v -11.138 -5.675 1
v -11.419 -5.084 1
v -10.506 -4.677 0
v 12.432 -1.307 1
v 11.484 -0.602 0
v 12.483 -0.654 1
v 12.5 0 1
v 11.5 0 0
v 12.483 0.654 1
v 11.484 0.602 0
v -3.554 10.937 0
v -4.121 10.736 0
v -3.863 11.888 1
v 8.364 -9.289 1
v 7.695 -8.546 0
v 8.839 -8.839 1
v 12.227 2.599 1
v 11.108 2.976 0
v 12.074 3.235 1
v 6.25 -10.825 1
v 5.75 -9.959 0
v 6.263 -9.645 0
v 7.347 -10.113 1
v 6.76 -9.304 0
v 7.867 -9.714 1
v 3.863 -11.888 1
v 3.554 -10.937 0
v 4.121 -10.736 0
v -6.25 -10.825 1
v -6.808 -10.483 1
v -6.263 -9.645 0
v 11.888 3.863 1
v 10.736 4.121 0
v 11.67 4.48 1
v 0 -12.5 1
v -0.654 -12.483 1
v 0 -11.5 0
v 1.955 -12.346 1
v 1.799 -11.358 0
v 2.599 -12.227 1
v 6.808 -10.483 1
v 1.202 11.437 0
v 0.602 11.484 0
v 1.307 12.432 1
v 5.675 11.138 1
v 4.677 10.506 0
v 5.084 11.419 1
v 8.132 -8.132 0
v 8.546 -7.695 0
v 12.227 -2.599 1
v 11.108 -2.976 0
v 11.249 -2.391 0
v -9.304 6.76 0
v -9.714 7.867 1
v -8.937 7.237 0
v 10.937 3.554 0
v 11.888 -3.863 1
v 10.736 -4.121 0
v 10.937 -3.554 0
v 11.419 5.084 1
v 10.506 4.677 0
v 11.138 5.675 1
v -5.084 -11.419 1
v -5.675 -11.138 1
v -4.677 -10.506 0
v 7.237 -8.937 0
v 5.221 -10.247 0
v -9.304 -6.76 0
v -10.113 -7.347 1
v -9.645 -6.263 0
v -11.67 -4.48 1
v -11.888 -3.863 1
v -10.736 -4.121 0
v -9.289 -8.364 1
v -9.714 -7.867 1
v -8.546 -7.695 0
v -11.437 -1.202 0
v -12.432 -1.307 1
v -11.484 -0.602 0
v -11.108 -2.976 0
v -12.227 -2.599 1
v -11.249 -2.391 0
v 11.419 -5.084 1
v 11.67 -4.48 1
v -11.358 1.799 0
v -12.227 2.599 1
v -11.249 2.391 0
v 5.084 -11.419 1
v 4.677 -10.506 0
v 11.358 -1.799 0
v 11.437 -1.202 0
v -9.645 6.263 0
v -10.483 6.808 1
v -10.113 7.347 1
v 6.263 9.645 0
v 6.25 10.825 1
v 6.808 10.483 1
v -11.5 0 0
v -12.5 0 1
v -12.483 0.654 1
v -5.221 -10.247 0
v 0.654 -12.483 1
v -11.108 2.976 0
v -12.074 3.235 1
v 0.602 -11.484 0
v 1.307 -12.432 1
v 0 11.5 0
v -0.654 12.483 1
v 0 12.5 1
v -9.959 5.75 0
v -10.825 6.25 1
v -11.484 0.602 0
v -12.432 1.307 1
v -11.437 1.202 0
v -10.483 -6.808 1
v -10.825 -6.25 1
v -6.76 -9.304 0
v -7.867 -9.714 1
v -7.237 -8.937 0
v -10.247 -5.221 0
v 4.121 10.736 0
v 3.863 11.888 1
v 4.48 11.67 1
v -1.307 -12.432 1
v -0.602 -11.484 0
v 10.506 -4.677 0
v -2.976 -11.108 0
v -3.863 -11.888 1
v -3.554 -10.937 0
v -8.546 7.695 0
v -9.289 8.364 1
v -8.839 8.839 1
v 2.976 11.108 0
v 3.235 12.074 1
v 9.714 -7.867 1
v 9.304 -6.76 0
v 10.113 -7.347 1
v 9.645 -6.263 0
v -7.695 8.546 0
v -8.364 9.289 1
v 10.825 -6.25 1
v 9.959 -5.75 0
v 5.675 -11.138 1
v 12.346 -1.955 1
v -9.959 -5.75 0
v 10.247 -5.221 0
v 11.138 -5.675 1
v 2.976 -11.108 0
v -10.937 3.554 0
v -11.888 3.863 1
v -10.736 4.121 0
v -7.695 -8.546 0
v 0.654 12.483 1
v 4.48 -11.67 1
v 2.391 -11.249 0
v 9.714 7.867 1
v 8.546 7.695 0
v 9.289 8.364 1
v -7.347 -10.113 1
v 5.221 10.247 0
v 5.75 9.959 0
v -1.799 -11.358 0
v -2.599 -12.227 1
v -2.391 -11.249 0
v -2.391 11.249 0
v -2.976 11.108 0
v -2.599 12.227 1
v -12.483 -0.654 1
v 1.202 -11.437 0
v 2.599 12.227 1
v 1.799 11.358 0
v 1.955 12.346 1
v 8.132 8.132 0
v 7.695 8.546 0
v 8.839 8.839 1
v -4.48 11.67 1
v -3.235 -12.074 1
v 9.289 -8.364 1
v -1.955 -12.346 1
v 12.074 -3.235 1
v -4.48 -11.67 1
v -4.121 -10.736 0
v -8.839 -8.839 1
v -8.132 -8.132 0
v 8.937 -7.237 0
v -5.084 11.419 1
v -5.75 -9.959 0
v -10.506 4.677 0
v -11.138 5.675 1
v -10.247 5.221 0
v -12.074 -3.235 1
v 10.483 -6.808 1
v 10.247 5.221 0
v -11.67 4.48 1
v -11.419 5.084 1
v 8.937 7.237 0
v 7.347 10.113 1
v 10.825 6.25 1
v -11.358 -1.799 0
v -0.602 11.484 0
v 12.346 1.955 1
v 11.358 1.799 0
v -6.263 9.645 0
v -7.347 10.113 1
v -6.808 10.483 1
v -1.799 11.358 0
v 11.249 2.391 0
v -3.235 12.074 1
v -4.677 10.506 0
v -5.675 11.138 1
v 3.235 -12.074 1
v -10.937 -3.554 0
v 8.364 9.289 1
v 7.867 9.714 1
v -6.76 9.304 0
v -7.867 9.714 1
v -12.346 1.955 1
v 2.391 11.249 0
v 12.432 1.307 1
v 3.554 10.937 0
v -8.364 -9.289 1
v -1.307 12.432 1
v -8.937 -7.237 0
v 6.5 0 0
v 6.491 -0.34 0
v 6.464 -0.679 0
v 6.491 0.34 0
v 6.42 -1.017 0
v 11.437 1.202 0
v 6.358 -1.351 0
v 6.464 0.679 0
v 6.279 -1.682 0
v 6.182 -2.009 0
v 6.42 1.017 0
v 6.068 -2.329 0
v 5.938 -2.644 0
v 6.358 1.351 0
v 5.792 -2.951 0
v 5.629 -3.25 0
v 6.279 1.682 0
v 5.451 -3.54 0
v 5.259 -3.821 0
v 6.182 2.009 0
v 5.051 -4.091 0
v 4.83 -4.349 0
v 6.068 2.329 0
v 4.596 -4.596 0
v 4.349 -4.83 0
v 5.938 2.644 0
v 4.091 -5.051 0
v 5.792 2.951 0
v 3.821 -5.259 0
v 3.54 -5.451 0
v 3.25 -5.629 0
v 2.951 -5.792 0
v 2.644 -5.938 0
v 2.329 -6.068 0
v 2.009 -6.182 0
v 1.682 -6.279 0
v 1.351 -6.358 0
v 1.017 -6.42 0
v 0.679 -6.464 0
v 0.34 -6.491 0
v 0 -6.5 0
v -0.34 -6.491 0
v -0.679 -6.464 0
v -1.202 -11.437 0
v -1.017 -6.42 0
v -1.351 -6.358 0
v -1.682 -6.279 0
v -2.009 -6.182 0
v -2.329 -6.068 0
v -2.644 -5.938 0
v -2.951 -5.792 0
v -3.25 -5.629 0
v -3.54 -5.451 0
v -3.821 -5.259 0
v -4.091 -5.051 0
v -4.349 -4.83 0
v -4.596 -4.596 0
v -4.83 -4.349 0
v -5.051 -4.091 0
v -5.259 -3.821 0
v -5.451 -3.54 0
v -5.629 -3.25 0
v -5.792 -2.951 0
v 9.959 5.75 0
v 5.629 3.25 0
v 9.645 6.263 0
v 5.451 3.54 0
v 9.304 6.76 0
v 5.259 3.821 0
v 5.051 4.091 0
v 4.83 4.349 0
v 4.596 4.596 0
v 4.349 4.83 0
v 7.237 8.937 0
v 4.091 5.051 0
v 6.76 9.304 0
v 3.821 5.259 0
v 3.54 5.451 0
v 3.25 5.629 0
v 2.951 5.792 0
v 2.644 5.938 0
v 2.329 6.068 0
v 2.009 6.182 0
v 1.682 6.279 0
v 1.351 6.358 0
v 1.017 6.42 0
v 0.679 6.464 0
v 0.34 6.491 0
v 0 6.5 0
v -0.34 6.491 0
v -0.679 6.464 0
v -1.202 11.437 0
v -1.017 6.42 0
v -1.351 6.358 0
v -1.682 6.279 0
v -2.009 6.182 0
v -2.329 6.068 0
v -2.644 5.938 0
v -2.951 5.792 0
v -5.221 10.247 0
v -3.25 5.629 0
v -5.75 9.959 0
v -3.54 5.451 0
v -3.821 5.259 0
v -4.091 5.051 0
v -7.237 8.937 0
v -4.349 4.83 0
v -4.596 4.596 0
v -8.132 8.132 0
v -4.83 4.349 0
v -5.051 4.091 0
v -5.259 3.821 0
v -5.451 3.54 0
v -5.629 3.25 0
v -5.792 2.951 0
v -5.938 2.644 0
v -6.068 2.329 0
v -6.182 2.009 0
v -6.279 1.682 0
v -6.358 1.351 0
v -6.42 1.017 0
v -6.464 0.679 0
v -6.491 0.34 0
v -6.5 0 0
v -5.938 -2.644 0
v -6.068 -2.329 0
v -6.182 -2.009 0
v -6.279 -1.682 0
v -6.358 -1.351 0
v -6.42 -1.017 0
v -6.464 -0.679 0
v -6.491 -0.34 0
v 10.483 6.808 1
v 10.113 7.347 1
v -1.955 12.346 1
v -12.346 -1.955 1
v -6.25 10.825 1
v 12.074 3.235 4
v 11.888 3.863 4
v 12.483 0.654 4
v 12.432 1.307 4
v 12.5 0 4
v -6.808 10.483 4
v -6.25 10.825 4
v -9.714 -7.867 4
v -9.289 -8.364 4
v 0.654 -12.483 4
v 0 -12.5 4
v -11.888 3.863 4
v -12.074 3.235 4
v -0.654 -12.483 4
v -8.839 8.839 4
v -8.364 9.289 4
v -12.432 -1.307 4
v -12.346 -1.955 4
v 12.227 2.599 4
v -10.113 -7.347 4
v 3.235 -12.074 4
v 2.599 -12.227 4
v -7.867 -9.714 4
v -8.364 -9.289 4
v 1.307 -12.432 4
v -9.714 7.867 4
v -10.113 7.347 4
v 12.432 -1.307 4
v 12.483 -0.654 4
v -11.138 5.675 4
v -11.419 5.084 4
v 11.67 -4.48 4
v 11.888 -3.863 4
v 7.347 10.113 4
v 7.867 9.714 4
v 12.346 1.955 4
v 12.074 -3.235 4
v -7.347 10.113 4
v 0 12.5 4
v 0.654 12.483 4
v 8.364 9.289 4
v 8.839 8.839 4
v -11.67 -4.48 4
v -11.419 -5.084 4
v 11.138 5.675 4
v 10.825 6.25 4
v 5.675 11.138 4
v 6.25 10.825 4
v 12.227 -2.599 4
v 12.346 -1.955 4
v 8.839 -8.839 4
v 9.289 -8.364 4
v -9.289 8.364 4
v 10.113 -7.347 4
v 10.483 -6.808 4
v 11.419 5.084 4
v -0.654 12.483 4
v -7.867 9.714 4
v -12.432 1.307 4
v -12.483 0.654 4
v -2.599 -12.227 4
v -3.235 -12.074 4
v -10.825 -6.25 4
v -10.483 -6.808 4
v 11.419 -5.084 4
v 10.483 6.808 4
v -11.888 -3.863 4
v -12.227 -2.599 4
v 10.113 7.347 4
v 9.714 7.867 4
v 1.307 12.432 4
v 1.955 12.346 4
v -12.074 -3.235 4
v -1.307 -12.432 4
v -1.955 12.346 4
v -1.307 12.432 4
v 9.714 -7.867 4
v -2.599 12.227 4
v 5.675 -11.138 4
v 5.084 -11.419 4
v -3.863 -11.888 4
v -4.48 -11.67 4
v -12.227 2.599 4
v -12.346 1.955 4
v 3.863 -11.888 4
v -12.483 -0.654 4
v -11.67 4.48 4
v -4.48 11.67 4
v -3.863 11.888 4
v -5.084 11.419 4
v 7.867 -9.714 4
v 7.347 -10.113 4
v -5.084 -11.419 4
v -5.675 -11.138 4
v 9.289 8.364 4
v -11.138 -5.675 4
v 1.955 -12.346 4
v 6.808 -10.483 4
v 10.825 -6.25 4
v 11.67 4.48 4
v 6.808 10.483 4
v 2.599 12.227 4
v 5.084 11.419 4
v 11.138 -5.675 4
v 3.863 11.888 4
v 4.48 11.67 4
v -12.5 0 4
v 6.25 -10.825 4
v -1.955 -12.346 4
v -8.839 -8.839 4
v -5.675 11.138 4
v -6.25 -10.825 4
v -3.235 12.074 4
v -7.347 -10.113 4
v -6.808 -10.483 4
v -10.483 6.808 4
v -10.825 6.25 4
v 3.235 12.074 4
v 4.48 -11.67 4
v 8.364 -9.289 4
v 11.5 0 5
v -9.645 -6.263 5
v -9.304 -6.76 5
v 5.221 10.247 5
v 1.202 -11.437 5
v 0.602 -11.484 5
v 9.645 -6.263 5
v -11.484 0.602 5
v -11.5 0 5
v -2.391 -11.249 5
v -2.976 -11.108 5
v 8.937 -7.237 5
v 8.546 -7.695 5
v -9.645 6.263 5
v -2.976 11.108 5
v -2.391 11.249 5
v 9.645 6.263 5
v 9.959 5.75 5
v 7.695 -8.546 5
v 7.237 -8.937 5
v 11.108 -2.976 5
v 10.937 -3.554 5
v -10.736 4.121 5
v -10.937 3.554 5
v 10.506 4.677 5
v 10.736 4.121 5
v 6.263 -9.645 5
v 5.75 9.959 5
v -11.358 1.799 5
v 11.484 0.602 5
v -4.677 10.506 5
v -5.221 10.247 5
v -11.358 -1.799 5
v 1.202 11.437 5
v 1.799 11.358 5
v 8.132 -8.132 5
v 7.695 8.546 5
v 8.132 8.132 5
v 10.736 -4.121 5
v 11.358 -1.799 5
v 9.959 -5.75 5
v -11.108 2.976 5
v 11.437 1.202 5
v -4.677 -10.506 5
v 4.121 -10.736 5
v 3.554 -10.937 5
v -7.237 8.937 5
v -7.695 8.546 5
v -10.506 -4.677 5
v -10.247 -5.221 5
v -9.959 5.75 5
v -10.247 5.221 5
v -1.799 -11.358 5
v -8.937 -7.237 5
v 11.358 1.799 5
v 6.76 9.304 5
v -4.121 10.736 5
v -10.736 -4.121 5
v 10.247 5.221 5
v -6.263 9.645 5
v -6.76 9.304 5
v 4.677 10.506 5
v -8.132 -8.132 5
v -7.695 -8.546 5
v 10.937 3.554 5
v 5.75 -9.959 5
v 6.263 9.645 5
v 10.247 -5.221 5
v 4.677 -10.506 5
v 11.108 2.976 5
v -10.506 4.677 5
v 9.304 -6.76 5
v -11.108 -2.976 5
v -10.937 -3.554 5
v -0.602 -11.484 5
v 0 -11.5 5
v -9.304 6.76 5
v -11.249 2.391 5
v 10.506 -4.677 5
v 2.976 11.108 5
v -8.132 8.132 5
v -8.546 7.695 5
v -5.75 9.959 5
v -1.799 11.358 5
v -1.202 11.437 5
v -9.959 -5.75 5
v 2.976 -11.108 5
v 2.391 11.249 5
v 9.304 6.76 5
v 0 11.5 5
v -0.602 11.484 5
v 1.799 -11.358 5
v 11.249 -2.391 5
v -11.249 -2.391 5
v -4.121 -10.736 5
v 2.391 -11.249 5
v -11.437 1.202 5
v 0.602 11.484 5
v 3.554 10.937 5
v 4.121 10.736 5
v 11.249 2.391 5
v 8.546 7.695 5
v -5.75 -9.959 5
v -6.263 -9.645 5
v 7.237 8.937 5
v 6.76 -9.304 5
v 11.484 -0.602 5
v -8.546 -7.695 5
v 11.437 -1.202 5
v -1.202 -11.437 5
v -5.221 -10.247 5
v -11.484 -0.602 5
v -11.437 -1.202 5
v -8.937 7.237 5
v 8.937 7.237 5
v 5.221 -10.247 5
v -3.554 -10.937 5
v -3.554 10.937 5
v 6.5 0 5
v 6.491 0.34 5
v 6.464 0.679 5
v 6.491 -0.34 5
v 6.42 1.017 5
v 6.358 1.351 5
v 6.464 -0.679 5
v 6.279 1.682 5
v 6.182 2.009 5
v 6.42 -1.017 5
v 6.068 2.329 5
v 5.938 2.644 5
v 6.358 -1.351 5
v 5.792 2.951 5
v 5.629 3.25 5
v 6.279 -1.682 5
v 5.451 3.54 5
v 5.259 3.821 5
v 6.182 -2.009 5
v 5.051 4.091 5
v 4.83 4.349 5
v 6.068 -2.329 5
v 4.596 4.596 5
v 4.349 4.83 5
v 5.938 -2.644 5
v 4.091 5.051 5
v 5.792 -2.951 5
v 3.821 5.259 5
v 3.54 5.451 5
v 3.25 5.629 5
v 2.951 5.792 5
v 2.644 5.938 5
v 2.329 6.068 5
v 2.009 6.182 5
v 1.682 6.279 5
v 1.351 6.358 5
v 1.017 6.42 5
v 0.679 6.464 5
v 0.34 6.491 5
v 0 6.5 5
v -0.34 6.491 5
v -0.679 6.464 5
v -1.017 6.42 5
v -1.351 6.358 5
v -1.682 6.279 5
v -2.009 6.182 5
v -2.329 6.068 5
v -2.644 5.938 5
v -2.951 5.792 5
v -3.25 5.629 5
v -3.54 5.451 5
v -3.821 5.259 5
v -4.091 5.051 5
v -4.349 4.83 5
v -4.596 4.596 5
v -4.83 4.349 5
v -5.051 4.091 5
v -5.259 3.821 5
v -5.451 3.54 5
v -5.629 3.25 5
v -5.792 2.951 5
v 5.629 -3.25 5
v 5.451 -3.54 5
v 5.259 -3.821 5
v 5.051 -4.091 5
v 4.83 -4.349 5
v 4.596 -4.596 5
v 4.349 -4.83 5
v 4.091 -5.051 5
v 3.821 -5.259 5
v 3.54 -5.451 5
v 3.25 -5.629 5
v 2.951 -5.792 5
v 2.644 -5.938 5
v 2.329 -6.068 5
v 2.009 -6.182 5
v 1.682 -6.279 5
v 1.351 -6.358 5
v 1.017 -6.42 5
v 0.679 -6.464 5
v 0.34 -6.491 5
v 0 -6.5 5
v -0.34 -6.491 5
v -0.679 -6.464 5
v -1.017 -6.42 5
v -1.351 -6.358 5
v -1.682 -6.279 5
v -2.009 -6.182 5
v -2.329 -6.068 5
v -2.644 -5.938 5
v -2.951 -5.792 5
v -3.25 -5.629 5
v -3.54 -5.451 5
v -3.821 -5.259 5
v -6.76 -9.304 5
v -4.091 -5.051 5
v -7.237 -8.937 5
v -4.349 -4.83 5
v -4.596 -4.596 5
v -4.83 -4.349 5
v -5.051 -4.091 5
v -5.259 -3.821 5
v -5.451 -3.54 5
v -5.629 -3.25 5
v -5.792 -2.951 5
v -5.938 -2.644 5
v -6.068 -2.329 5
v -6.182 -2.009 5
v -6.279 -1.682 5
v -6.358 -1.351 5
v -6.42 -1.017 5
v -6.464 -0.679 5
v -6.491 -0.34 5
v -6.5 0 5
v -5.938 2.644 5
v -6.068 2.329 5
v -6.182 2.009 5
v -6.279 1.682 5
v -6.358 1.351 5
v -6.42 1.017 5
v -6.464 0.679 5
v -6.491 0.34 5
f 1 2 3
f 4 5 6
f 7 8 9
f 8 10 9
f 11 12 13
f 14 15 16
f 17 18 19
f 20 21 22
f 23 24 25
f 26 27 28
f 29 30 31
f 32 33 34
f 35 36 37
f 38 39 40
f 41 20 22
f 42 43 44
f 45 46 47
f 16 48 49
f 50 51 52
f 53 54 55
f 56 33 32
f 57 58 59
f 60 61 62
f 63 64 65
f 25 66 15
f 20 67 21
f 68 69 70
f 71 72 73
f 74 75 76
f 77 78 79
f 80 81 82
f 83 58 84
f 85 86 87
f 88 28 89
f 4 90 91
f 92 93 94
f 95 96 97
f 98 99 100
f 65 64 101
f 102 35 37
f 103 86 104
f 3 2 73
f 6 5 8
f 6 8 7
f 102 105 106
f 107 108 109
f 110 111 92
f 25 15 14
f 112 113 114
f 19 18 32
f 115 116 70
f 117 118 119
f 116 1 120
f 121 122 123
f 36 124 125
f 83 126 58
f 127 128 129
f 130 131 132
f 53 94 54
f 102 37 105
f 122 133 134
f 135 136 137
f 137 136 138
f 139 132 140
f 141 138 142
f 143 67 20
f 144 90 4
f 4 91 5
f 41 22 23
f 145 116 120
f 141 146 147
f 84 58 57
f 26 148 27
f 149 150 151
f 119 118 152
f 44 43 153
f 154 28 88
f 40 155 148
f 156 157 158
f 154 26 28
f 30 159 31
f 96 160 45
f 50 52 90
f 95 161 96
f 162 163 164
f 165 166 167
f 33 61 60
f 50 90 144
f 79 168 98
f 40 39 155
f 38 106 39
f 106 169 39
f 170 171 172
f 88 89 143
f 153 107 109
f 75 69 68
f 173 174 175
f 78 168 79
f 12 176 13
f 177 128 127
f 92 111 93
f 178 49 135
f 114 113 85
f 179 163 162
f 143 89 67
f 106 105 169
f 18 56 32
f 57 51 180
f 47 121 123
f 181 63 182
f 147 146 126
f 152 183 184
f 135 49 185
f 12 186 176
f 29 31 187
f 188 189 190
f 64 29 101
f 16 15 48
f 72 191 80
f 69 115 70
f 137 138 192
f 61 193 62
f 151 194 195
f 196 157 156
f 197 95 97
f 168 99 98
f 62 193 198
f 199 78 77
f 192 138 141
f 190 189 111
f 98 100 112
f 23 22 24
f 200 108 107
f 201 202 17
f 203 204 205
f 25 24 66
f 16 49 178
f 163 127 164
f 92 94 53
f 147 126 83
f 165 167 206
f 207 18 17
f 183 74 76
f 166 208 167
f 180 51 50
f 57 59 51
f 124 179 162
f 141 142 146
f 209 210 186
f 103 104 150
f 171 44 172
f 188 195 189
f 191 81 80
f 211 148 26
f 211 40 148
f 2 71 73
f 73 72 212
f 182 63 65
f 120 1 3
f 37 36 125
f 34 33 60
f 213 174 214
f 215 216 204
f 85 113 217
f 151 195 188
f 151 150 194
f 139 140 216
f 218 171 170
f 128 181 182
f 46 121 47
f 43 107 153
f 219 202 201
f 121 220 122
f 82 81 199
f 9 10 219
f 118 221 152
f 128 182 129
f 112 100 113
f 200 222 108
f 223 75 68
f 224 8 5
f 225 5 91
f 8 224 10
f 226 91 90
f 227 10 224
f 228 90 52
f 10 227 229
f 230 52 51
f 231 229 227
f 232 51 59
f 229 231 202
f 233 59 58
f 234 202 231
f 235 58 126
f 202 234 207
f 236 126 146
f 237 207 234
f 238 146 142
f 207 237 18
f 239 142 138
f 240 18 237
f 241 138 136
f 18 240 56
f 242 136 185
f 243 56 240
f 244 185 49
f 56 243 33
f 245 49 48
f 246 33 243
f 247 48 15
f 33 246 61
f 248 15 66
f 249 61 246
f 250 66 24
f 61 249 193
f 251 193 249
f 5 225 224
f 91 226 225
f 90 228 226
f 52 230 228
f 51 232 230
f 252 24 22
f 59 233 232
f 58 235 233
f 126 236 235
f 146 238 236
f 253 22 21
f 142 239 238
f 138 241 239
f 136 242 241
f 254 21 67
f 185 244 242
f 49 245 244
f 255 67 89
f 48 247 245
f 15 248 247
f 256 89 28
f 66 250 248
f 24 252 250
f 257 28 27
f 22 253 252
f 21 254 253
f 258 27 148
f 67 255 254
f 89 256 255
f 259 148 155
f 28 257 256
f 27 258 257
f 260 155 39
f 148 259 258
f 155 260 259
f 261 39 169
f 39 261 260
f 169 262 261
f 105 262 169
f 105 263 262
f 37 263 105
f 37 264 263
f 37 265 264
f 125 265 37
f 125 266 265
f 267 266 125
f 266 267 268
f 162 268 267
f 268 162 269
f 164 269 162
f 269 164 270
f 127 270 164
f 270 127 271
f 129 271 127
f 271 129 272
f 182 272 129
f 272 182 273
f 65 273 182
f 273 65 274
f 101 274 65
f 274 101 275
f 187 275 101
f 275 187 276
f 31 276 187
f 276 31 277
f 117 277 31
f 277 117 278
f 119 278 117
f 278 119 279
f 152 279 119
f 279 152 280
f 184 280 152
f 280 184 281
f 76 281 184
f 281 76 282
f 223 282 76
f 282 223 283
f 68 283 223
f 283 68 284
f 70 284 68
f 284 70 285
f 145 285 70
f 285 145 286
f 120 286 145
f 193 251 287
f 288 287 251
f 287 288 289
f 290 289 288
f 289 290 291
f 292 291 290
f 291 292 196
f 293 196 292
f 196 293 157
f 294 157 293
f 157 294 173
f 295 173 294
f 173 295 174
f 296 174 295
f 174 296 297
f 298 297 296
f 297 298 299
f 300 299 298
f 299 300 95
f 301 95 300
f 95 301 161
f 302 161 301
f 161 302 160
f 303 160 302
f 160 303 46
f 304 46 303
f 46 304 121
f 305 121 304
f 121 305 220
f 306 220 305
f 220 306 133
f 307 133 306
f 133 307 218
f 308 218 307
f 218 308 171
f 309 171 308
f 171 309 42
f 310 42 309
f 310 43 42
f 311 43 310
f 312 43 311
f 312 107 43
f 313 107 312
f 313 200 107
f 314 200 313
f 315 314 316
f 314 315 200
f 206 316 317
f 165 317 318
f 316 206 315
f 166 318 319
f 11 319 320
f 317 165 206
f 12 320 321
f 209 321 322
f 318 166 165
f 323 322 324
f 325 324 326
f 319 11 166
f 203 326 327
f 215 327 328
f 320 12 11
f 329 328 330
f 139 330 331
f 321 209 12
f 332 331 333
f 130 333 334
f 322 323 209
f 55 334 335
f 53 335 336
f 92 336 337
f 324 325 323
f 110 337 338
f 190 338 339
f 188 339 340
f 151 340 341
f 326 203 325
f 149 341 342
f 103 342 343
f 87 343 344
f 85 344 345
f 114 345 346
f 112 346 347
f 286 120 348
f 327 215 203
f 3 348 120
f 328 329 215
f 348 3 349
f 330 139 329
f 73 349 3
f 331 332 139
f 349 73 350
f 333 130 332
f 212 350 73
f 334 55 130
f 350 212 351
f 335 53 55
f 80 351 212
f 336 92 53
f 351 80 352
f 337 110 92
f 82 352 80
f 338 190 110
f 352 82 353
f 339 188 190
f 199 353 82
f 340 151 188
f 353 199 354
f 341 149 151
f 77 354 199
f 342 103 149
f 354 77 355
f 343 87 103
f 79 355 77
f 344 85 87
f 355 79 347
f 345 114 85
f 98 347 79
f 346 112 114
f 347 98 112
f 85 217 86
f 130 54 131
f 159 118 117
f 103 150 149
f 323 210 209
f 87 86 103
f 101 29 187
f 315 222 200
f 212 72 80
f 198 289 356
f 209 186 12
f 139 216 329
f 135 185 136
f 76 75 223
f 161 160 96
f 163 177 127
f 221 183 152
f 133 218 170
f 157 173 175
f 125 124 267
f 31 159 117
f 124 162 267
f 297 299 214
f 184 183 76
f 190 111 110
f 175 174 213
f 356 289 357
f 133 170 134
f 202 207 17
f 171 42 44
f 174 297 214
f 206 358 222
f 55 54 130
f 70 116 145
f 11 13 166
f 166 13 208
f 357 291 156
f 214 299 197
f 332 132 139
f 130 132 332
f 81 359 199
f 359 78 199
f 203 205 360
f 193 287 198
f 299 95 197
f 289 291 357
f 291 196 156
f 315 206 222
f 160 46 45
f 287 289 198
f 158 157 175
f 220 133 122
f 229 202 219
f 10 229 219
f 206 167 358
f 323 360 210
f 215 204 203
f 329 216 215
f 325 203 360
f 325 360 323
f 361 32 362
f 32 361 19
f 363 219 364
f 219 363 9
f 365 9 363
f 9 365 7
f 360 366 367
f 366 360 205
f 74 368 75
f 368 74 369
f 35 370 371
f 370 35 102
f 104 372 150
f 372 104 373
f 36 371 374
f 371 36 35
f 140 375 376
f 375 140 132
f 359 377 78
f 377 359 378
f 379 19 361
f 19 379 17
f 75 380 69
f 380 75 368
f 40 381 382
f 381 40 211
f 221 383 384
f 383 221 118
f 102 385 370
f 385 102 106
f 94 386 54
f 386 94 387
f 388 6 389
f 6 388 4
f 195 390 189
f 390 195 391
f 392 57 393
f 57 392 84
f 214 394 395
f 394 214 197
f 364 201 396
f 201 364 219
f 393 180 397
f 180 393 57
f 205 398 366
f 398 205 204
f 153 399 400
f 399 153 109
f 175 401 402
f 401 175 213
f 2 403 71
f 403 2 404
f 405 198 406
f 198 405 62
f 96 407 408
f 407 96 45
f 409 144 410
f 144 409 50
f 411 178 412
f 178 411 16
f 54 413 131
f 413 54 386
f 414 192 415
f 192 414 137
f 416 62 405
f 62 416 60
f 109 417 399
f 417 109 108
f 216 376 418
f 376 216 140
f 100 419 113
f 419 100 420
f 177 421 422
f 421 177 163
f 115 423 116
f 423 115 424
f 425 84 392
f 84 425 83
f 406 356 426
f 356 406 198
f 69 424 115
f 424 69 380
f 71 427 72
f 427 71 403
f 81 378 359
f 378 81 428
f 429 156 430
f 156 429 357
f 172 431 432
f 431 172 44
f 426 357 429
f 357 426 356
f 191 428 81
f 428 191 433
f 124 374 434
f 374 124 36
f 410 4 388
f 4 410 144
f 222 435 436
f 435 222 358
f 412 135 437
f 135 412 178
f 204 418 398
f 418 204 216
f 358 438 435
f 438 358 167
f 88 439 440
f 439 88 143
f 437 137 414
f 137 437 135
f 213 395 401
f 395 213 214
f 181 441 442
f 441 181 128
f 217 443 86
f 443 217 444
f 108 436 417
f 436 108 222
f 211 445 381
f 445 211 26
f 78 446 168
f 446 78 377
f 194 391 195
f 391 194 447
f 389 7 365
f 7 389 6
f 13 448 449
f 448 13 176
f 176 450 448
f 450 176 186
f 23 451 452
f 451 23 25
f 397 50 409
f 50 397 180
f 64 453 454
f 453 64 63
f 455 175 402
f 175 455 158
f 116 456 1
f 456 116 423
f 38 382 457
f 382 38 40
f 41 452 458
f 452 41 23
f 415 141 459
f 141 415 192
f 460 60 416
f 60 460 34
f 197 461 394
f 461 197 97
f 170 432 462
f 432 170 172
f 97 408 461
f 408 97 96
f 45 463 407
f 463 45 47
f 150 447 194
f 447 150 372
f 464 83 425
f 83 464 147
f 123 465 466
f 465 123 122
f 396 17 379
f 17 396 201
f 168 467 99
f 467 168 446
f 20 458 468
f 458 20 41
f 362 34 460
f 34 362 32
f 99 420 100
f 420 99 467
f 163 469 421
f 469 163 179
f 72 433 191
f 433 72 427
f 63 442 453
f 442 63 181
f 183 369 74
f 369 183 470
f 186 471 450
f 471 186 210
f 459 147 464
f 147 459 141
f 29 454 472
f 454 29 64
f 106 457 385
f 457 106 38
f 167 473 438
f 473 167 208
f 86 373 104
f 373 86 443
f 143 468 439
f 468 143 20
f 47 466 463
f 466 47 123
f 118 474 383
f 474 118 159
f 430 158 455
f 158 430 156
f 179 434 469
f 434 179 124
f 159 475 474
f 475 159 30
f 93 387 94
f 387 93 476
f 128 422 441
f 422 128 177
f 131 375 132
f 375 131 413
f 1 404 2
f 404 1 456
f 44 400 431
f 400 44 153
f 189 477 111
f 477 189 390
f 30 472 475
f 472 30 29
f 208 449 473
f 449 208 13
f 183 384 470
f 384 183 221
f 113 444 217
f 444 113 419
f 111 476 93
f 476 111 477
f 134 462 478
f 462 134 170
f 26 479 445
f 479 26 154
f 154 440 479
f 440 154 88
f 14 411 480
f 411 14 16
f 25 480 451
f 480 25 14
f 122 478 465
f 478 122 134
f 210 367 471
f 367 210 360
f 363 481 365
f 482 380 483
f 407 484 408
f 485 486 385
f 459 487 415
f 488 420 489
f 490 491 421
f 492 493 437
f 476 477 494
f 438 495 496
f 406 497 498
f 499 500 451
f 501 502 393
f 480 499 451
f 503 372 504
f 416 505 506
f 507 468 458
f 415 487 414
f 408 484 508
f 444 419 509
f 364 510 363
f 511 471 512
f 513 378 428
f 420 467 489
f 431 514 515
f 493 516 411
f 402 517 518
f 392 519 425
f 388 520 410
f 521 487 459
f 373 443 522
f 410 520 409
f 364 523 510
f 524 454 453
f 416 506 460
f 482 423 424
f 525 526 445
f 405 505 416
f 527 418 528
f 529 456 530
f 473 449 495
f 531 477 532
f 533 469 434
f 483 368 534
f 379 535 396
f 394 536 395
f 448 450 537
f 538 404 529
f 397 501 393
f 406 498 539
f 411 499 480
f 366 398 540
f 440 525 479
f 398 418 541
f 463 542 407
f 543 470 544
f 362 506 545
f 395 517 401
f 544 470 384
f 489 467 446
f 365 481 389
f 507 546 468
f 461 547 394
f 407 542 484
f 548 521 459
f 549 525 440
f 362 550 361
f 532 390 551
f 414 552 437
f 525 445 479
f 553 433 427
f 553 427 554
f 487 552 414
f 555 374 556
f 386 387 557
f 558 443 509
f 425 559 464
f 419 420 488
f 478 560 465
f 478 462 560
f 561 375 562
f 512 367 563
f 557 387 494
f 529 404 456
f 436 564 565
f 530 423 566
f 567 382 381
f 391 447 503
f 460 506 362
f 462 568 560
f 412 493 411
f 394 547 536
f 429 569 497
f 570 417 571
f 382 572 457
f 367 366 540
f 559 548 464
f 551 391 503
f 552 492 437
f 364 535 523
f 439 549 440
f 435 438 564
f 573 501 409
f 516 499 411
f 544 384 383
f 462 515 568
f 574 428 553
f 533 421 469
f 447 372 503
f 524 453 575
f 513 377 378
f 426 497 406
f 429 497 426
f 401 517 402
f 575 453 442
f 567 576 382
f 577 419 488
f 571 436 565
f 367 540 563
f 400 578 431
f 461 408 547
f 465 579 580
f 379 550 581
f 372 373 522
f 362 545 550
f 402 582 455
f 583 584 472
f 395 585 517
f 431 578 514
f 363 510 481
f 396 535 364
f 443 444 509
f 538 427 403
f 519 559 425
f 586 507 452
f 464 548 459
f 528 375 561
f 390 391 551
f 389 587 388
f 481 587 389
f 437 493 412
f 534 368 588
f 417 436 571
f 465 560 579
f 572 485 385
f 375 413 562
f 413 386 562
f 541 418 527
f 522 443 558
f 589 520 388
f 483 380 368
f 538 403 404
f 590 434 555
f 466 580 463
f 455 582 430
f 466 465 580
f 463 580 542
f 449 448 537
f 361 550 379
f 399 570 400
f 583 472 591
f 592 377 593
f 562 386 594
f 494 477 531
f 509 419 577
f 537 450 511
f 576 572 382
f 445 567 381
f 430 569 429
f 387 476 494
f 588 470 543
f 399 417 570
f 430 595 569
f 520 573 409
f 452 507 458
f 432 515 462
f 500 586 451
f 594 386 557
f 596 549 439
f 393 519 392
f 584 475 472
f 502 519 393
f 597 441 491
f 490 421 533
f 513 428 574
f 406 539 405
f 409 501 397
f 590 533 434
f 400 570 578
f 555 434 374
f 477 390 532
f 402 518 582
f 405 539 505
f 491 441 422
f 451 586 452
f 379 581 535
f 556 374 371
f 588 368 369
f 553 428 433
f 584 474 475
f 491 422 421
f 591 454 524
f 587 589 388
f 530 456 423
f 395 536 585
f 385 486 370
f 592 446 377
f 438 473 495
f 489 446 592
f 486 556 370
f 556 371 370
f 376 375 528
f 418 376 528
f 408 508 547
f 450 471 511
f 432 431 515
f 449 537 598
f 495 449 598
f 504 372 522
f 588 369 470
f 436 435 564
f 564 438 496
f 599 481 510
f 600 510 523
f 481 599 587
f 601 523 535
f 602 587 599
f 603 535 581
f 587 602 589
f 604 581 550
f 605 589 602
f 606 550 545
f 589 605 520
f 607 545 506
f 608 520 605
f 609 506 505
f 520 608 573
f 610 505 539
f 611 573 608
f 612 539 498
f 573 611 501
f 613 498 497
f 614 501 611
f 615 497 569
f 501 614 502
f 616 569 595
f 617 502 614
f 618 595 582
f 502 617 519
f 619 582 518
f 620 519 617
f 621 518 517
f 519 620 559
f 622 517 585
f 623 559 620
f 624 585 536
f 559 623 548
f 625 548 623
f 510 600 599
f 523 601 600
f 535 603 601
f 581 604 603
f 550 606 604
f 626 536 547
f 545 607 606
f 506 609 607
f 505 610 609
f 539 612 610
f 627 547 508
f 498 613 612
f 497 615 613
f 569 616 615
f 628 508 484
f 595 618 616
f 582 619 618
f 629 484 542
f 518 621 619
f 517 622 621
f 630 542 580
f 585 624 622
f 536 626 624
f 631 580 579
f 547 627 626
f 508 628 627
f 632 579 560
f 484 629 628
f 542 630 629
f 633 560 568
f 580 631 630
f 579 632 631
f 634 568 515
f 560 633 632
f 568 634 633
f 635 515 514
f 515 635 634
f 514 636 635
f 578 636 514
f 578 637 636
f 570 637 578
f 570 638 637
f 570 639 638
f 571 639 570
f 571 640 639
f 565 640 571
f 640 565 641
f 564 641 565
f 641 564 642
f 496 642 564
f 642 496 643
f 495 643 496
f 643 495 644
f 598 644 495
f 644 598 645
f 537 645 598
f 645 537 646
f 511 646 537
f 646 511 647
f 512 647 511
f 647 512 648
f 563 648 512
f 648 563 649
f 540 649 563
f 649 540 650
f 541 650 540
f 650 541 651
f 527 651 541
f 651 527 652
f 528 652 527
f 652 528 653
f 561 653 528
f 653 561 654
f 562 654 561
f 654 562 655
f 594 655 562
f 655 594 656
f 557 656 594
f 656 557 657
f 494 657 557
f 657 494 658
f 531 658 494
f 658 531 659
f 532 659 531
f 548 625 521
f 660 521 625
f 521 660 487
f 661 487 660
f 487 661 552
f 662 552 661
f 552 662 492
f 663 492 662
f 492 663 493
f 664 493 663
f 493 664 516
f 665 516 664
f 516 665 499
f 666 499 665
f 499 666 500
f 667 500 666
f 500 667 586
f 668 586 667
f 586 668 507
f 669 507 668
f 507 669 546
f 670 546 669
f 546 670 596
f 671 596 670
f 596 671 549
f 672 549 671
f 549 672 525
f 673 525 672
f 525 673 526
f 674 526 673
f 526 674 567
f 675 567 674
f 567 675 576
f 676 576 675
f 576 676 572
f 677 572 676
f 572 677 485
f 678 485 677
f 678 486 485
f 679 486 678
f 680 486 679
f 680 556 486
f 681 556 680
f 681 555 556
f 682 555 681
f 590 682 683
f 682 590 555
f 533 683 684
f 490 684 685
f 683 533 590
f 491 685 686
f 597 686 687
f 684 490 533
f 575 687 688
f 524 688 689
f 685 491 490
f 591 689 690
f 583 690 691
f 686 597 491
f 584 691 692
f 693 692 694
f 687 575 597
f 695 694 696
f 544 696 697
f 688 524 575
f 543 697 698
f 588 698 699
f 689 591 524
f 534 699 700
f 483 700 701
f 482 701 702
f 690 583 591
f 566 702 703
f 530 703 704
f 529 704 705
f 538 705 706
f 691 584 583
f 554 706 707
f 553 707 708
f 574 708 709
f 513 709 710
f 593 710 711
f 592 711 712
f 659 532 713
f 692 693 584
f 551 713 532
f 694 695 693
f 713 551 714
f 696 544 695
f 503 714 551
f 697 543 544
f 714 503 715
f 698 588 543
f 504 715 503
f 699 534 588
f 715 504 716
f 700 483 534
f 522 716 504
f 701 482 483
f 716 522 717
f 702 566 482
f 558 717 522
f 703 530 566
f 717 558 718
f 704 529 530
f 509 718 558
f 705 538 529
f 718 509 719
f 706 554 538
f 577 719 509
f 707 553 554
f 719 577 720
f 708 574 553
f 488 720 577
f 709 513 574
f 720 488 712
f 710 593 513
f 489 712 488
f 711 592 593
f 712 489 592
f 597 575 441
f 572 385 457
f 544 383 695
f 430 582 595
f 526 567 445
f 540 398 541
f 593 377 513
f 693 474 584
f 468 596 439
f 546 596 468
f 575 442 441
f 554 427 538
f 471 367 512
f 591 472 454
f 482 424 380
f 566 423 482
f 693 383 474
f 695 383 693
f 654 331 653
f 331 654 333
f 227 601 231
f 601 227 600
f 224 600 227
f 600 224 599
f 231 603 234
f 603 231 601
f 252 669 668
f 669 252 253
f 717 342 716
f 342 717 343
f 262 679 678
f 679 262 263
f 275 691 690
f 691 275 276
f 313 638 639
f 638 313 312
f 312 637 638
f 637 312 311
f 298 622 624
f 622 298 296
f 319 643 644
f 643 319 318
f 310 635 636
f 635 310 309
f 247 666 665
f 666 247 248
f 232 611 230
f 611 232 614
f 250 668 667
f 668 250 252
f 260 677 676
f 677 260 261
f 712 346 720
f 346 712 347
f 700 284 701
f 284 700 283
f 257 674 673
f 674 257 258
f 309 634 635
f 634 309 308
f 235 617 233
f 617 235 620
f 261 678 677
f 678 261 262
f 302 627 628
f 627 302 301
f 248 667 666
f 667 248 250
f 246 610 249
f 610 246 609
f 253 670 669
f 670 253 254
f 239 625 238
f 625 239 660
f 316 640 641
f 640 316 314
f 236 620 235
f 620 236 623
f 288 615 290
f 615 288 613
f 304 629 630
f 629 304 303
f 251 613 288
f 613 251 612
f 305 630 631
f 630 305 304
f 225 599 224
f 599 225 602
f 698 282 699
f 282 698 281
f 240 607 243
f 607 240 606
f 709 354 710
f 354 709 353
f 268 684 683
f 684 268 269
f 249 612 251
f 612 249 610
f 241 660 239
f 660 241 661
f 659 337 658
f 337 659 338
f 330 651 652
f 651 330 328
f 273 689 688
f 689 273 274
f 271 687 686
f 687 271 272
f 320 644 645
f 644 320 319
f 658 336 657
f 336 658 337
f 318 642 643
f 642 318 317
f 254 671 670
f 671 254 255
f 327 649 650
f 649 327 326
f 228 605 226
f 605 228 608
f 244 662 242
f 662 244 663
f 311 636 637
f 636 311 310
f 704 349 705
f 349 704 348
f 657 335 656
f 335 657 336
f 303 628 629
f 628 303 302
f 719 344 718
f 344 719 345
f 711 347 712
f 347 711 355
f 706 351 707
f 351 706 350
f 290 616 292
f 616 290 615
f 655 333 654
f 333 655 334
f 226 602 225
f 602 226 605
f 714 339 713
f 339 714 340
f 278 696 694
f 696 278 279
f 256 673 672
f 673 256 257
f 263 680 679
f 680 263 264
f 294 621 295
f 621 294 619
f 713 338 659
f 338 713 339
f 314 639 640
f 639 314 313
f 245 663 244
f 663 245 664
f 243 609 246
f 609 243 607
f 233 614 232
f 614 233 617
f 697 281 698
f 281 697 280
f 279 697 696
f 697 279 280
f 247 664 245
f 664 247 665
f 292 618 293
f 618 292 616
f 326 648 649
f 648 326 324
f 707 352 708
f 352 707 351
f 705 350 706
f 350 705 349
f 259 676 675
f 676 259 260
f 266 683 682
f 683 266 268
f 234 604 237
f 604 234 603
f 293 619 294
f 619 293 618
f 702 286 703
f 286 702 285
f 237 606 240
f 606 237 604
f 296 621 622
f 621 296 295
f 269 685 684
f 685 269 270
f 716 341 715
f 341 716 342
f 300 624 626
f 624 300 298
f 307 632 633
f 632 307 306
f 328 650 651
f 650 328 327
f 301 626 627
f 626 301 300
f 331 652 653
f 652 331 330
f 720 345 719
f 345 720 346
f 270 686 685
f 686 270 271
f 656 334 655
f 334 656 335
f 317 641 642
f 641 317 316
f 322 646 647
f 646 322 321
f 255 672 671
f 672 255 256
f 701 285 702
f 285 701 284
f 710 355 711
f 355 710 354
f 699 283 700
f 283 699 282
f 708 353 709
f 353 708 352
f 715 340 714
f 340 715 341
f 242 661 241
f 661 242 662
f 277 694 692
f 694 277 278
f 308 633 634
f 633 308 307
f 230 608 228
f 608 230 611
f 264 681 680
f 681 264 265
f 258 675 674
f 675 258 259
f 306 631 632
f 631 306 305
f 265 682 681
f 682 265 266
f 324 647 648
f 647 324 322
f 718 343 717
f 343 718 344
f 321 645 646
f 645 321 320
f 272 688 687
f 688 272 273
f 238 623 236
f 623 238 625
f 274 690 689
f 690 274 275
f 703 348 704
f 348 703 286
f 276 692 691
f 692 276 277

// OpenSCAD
$fn = 120;
overcut = 1;

module wheel(
    inner_diameter = 13,
    outer_diameter = 25,
    wheel_width = 5,
    edge_bevel = 1
    ) {

    difference() {
        union() {
            cylinder(h=edge_bevel, d1=outer_diameter - 2*edge_bevel, d2=outer_diameter);
            translate([0, 0, edge_bevel])
                cylinder(h=wheel_width - 2*edge_bevel, d=outer_diameter);
            translate([0, 0, wheel_width - edge_bevel])
                cylinder(h=edge_bevel, , d1=outer_diameter, d2=outer_diameter - 2*edge_bevel);
        }
        
        translate([0, 0, -overcut])
            cylinder(h = wheel_width + 2*overcut, d=inner_diameter);
    }
}

wheel();
